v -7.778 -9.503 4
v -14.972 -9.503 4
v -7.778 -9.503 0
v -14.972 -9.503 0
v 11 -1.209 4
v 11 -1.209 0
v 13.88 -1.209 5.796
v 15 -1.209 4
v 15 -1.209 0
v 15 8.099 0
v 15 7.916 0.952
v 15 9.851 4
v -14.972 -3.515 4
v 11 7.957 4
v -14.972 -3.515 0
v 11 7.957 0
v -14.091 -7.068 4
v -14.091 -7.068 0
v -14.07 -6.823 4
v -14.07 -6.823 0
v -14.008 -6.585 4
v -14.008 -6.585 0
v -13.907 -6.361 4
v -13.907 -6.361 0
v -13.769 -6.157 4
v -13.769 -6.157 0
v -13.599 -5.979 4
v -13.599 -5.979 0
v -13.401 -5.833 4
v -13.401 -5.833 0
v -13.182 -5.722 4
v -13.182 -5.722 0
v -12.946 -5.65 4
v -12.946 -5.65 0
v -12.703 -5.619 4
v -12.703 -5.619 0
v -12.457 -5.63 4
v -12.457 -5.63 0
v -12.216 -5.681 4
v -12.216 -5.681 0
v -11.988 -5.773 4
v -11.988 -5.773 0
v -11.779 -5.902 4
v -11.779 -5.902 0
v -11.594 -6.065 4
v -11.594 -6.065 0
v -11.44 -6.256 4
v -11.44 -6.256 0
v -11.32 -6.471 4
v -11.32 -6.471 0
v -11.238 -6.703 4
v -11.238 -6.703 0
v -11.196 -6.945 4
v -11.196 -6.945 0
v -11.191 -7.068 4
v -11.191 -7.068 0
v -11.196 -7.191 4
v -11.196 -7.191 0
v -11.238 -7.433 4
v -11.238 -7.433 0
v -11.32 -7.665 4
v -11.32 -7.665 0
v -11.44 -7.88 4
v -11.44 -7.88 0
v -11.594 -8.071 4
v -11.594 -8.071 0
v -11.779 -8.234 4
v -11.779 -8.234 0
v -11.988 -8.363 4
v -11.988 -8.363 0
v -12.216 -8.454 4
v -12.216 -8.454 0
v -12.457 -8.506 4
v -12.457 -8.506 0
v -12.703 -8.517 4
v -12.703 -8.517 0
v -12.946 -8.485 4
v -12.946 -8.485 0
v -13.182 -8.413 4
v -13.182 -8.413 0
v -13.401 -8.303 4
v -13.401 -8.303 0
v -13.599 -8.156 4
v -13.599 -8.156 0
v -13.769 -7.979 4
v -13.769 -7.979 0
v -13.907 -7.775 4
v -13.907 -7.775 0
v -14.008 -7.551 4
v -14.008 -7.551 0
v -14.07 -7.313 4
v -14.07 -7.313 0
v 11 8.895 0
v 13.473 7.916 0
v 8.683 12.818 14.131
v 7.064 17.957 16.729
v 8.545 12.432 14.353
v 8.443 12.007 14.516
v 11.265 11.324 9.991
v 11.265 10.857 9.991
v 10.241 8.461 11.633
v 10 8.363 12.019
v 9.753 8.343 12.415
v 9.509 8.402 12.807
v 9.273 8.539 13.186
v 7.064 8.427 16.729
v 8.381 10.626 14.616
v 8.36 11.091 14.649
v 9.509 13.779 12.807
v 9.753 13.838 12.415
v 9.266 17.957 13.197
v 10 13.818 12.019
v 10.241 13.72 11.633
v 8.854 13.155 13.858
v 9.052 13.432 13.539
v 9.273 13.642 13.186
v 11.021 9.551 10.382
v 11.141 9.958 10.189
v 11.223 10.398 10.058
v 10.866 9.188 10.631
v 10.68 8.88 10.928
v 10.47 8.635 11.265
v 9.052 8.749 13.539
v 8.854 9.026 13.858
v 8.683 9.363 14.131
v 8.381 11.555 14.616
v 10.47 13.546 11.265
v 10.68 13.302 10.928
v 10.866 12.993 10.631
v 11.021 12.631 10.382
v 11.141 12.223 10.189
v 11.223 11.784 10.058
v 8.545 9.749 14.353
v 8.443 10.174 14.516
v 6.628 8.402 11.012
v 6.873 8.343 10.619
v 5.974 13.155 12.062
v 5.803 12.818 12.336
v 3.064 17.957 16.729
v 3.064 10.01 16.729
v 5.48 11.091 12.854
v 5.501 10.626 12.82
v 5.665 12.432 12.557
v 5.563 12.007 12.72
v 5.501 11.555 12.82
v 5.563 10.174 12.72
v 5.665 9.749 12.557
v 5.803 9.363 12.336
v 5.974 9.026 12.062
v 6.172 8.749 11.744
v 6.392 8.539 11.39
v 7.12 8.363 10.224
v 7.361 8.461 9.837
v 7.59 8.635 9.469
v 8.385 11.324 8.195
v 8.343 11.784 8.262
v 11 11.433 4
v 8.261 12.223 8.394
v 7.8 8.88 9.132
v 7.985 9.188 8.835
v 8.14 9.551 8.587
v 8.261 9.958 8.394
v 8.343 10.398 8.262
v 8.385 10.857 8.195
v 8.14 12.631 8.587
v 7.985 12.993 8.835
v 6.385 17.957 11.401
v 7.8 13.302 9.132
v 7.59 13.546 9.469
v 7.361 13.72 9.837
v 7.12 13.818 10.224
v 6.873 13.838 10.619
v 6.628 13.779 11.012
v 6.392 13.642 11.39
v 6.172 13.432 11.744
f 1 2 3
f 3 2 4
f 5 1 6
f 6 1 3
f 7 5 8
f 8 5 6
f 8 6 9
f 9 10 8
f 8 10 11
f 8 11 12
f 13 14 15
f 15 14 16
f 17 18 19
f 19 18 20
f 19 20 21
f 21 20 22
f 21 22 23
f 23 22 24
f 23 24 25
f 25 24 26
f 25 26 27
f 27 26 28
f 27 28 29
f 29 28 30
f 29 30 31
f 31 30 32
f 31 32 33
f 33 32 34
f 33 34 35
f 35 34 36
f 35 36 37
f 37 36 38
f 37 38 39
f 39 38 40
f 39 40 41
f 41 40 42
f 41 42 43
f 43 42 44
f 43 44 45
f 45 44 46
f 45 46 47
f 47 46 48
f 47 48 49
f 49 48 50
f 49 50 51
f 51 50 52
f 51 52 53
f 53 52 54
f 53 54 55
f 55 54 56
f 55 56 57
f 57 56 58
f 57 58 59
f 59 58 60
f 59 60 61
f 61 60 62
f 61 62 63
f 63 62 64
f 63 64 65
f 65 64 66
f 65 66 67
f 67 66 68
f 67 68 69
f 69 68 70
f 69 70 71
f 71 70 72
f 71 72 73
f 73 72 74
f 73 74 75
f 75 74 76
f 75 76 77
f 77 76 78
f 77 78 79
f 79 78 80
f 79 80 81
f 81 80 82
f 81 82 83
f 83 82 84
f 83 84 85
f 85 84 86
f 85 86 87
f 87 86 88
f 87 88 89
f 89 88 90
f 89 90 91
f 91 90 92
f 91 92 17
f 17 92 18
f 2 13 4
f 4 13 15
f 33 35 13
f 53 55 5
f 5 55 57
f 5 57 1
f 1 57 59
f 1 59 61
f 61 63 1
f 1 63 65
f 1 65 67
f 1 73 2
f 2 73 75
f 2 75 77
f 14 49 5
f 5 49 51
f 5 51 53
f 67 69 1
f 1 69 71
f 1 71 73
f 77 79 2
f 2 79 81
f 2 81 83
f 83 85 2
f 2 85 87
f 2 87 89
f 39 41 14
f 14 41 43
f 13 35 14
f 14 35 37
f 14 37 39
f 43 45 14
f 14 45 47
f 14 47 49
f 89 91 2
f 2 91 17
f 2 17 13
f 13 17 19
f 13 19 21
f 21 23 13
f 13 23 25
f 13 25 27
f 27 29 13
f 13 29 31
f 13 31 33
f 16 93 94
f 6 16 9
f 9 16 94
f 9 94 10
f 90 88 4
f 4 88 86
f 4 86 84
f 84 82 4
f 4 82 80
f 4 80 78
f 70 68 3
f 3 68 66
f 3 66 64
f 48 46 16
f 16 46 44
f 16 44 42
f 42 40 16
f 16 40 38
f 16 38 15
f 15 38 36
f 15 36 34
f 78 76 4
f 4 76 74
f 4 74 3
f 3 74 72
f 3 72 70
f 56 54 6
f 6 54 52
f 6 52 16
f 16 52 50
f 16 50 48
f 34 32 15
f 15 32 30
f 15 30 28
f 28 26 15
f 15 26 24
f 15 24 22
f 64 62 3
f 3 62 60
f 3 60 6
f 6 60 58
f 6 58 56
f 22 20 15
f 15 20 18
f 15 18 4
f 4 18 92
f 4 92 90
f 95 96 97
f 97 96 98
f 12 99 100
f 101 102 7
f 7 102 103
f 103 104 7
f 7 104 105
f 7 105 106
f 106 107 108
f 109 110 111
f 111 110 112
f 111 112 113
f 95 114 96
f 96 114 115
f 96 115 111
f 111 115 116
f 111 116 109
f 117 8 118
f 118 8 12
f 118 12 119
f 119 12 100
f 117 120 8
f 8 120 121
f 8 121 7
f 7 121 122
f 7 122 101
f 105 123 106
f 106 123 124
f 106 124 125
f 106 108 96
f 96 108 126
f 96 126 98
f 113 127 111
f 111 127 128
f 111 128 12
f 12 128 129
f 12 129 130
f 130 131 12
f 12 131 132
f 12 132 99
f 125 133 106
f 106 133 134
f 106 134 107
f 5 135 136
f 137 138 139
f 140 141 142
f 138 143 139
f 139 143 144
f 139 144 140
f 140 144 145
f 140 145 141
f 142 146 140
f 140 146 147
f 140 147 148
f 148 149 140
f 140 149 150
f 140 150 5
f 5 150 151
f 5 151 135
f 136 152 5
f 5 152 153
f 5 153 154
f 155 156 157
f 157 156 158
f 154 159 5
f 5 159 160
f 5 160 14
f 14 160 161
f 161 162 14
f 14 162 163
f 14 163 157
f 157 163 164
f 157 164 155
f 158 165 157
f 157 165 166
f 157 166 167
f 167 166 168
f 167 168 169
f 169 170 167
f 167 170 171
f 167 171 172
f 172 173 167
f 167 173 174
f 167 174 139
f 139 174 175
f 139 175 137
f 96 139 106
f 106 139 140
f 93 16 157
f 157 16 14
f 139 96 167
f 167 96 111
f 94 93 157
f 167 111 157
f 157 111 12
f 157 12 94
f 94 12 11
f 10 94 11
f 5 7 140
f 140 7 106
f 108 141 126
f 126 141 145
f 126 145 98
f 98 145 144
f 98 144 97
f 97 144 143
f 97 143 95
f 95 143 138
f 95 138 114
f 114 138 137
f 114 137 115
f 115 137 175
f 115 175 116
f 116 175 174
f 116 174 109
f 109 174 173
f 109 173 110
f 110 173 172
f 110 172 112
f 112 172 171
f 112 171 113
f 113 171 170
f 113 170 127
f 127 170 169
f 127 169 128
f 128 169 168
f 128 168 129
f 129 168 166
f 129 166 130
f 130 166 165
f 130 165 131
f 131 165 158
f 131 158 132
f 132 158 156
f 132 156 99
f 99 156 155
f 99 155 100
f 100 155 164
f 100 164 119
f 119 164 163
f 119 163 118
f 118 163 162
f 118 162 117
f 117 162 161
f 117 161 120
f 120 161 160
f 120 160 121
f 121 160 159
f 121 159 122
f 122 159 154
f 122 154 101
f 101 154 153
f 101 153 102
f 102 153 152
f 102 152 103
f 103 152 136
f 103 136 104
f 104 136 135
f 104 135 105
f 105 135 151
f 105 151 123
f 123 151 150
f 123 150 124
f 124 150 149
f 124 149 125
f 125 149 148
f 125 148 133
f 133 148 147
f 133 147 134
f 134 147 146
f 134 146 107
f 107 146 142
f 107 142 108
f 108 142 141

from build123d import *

# Parameters (mm, degrees)
SKICA1_R                 = 1.45
SKICA1_W                 = 4
SKICA1_H                 = 9.16588566
P_IDAT_VYSUNUT_M1_DEPTH  = 4
SKICA3_W                 = 4
SKICA3_H                 = 9.16588566
P_IDAT_VYSUNUT_M2_DEPTH  = 15
P_IDAT_VYSUNUT_M3_DEPTH  = 10
ODEBRAT_VYSUNUT_M2_DEPTH = 10
ODEBRAT_VYSUNUT_M3_DEPTH = 10
SKICA8_R                 = 2.75
ODEBRAT_VYSUNUT_M4_DEPTH = 10


with BuildPart() as part:
    # Skica1 → Přidat vysunutím1 (new body)
    # profile 1 of 2: a face of its own
    with BuildSketch(Plane.XY):
        Polygon((-7.778084737, -9.503012675), (-14.971883786, -9.503012675), (-14.971883786, -3.51452671), (11, 7.956888472), (11, -1.208997188), align=None)
        with Locations((-12.640965682, -7.067935851)):
            Circle(SKICA1_R, mode=Mode.SUBTRACT)
    # profile 2 of 2: a face of its own
    with BuildSketch(Plane.XY):
        with Locations((13, 3.373945642)):
            Rectangle(SKICA1_W, SKICA1_H)
    extrude(amount=P_IDAT_VYSUNUT_M1_DEPTH)

    # Skica3 → Přidat vysunutím2 (add, along a direction that is not the sketch's normal)
    with BuildSketch(Plane.XY.offset(4)):
        with Locations((13, 3.373945642)):
            Rectangle(SKICA3_W, SKICA3_H)
    extrude(amount=P_IDAT_VYSUNUT_M2_DEPTH, dir=(-0.5290758851456407, 0, 0.8485745151472301))

    # Skica5 → Přidat vysunutím3 (add)
    with BuildSketch(Plane(origin=(0, 7.956888472, 0), x_dir=(1, 0, 0), z_dir=(0, 1, 0))):
        Polygon((15, 0), (11, 0), (11, -4), (3.063861723, -16.728617727), (7.063861723, -16.728617727), (15, -4), align=None)
    extrude(amount=P_IDAT_VYSUNUT_M3_DEPTH)

    # Skica6 → Odebrat vysunutím2 (cut)
    with BuildSketch(Plane(origin=(9.716707036, 0, 6.058248609), x_dir=(-0.5290758851456409, 0, 0.8485745151472303), z_dir=(-0.8485745151472303, 0, -0.5290758851456409))):
        Polygon((-2.425536676, -1.208997188), (12.574463324, 10.009598213), (12.574463324, 17.956888472), (6.296672199, 17.956888472), (-7.12800363, 7.916488038), (-11.684978048, 8.945304904), (-10.179922277, 18.63037402), (-8.967516239, 18.63037402), (19.168665262, 18.63037402), (19.670350519, -6.557900971), (0.480889436, -6.557900971), align=None)
    extrude(amount=-ODEBRAT_VYSUNUT_M2_DEPTH, mode=Mode.SUBTRACT)

    # Skica7 → Odebrat vysunutím3 (cut)
    with BuildSketch(Plane(origin=(9.716707036, 0, 6.058248609), x_dir=(0.5290758851456409, 0, -0.8485745151472303), z_dir=(0.8485745151472303, 0, 0.5290758851456409))):
        Polygon((2.425536676, 17.956888472), (2.425536676, 11.433492981), (7.12800363, 7.916488038), (7.139324244, 7.919043865), (7.139324244, 17.956888472), align=None)
    extrude(amount=-ODEBRAT_VYSUNUT_M3_DEPTH, mode=Mode.SUBTRACT)

    # Skica8 → Odebrat vysunutím4 (cut)
    with BuildSketch(Plane(origin=(9.716707036, 0, 6.058248609), x_dir=(-0.5290758851456409, 0, 0.8485745151472303), z_dir=(-0.8485745151472303, 0, -0.5290758851456409))):
        with Locations((5.257931739, 11.090596363)):
            Circle(SKICA8_R)
    extrude(amount=-ODEBRAT_VYSUNUT_M4_DEPTH, mode=Mode.SUBTRACT)


solid = part.part
